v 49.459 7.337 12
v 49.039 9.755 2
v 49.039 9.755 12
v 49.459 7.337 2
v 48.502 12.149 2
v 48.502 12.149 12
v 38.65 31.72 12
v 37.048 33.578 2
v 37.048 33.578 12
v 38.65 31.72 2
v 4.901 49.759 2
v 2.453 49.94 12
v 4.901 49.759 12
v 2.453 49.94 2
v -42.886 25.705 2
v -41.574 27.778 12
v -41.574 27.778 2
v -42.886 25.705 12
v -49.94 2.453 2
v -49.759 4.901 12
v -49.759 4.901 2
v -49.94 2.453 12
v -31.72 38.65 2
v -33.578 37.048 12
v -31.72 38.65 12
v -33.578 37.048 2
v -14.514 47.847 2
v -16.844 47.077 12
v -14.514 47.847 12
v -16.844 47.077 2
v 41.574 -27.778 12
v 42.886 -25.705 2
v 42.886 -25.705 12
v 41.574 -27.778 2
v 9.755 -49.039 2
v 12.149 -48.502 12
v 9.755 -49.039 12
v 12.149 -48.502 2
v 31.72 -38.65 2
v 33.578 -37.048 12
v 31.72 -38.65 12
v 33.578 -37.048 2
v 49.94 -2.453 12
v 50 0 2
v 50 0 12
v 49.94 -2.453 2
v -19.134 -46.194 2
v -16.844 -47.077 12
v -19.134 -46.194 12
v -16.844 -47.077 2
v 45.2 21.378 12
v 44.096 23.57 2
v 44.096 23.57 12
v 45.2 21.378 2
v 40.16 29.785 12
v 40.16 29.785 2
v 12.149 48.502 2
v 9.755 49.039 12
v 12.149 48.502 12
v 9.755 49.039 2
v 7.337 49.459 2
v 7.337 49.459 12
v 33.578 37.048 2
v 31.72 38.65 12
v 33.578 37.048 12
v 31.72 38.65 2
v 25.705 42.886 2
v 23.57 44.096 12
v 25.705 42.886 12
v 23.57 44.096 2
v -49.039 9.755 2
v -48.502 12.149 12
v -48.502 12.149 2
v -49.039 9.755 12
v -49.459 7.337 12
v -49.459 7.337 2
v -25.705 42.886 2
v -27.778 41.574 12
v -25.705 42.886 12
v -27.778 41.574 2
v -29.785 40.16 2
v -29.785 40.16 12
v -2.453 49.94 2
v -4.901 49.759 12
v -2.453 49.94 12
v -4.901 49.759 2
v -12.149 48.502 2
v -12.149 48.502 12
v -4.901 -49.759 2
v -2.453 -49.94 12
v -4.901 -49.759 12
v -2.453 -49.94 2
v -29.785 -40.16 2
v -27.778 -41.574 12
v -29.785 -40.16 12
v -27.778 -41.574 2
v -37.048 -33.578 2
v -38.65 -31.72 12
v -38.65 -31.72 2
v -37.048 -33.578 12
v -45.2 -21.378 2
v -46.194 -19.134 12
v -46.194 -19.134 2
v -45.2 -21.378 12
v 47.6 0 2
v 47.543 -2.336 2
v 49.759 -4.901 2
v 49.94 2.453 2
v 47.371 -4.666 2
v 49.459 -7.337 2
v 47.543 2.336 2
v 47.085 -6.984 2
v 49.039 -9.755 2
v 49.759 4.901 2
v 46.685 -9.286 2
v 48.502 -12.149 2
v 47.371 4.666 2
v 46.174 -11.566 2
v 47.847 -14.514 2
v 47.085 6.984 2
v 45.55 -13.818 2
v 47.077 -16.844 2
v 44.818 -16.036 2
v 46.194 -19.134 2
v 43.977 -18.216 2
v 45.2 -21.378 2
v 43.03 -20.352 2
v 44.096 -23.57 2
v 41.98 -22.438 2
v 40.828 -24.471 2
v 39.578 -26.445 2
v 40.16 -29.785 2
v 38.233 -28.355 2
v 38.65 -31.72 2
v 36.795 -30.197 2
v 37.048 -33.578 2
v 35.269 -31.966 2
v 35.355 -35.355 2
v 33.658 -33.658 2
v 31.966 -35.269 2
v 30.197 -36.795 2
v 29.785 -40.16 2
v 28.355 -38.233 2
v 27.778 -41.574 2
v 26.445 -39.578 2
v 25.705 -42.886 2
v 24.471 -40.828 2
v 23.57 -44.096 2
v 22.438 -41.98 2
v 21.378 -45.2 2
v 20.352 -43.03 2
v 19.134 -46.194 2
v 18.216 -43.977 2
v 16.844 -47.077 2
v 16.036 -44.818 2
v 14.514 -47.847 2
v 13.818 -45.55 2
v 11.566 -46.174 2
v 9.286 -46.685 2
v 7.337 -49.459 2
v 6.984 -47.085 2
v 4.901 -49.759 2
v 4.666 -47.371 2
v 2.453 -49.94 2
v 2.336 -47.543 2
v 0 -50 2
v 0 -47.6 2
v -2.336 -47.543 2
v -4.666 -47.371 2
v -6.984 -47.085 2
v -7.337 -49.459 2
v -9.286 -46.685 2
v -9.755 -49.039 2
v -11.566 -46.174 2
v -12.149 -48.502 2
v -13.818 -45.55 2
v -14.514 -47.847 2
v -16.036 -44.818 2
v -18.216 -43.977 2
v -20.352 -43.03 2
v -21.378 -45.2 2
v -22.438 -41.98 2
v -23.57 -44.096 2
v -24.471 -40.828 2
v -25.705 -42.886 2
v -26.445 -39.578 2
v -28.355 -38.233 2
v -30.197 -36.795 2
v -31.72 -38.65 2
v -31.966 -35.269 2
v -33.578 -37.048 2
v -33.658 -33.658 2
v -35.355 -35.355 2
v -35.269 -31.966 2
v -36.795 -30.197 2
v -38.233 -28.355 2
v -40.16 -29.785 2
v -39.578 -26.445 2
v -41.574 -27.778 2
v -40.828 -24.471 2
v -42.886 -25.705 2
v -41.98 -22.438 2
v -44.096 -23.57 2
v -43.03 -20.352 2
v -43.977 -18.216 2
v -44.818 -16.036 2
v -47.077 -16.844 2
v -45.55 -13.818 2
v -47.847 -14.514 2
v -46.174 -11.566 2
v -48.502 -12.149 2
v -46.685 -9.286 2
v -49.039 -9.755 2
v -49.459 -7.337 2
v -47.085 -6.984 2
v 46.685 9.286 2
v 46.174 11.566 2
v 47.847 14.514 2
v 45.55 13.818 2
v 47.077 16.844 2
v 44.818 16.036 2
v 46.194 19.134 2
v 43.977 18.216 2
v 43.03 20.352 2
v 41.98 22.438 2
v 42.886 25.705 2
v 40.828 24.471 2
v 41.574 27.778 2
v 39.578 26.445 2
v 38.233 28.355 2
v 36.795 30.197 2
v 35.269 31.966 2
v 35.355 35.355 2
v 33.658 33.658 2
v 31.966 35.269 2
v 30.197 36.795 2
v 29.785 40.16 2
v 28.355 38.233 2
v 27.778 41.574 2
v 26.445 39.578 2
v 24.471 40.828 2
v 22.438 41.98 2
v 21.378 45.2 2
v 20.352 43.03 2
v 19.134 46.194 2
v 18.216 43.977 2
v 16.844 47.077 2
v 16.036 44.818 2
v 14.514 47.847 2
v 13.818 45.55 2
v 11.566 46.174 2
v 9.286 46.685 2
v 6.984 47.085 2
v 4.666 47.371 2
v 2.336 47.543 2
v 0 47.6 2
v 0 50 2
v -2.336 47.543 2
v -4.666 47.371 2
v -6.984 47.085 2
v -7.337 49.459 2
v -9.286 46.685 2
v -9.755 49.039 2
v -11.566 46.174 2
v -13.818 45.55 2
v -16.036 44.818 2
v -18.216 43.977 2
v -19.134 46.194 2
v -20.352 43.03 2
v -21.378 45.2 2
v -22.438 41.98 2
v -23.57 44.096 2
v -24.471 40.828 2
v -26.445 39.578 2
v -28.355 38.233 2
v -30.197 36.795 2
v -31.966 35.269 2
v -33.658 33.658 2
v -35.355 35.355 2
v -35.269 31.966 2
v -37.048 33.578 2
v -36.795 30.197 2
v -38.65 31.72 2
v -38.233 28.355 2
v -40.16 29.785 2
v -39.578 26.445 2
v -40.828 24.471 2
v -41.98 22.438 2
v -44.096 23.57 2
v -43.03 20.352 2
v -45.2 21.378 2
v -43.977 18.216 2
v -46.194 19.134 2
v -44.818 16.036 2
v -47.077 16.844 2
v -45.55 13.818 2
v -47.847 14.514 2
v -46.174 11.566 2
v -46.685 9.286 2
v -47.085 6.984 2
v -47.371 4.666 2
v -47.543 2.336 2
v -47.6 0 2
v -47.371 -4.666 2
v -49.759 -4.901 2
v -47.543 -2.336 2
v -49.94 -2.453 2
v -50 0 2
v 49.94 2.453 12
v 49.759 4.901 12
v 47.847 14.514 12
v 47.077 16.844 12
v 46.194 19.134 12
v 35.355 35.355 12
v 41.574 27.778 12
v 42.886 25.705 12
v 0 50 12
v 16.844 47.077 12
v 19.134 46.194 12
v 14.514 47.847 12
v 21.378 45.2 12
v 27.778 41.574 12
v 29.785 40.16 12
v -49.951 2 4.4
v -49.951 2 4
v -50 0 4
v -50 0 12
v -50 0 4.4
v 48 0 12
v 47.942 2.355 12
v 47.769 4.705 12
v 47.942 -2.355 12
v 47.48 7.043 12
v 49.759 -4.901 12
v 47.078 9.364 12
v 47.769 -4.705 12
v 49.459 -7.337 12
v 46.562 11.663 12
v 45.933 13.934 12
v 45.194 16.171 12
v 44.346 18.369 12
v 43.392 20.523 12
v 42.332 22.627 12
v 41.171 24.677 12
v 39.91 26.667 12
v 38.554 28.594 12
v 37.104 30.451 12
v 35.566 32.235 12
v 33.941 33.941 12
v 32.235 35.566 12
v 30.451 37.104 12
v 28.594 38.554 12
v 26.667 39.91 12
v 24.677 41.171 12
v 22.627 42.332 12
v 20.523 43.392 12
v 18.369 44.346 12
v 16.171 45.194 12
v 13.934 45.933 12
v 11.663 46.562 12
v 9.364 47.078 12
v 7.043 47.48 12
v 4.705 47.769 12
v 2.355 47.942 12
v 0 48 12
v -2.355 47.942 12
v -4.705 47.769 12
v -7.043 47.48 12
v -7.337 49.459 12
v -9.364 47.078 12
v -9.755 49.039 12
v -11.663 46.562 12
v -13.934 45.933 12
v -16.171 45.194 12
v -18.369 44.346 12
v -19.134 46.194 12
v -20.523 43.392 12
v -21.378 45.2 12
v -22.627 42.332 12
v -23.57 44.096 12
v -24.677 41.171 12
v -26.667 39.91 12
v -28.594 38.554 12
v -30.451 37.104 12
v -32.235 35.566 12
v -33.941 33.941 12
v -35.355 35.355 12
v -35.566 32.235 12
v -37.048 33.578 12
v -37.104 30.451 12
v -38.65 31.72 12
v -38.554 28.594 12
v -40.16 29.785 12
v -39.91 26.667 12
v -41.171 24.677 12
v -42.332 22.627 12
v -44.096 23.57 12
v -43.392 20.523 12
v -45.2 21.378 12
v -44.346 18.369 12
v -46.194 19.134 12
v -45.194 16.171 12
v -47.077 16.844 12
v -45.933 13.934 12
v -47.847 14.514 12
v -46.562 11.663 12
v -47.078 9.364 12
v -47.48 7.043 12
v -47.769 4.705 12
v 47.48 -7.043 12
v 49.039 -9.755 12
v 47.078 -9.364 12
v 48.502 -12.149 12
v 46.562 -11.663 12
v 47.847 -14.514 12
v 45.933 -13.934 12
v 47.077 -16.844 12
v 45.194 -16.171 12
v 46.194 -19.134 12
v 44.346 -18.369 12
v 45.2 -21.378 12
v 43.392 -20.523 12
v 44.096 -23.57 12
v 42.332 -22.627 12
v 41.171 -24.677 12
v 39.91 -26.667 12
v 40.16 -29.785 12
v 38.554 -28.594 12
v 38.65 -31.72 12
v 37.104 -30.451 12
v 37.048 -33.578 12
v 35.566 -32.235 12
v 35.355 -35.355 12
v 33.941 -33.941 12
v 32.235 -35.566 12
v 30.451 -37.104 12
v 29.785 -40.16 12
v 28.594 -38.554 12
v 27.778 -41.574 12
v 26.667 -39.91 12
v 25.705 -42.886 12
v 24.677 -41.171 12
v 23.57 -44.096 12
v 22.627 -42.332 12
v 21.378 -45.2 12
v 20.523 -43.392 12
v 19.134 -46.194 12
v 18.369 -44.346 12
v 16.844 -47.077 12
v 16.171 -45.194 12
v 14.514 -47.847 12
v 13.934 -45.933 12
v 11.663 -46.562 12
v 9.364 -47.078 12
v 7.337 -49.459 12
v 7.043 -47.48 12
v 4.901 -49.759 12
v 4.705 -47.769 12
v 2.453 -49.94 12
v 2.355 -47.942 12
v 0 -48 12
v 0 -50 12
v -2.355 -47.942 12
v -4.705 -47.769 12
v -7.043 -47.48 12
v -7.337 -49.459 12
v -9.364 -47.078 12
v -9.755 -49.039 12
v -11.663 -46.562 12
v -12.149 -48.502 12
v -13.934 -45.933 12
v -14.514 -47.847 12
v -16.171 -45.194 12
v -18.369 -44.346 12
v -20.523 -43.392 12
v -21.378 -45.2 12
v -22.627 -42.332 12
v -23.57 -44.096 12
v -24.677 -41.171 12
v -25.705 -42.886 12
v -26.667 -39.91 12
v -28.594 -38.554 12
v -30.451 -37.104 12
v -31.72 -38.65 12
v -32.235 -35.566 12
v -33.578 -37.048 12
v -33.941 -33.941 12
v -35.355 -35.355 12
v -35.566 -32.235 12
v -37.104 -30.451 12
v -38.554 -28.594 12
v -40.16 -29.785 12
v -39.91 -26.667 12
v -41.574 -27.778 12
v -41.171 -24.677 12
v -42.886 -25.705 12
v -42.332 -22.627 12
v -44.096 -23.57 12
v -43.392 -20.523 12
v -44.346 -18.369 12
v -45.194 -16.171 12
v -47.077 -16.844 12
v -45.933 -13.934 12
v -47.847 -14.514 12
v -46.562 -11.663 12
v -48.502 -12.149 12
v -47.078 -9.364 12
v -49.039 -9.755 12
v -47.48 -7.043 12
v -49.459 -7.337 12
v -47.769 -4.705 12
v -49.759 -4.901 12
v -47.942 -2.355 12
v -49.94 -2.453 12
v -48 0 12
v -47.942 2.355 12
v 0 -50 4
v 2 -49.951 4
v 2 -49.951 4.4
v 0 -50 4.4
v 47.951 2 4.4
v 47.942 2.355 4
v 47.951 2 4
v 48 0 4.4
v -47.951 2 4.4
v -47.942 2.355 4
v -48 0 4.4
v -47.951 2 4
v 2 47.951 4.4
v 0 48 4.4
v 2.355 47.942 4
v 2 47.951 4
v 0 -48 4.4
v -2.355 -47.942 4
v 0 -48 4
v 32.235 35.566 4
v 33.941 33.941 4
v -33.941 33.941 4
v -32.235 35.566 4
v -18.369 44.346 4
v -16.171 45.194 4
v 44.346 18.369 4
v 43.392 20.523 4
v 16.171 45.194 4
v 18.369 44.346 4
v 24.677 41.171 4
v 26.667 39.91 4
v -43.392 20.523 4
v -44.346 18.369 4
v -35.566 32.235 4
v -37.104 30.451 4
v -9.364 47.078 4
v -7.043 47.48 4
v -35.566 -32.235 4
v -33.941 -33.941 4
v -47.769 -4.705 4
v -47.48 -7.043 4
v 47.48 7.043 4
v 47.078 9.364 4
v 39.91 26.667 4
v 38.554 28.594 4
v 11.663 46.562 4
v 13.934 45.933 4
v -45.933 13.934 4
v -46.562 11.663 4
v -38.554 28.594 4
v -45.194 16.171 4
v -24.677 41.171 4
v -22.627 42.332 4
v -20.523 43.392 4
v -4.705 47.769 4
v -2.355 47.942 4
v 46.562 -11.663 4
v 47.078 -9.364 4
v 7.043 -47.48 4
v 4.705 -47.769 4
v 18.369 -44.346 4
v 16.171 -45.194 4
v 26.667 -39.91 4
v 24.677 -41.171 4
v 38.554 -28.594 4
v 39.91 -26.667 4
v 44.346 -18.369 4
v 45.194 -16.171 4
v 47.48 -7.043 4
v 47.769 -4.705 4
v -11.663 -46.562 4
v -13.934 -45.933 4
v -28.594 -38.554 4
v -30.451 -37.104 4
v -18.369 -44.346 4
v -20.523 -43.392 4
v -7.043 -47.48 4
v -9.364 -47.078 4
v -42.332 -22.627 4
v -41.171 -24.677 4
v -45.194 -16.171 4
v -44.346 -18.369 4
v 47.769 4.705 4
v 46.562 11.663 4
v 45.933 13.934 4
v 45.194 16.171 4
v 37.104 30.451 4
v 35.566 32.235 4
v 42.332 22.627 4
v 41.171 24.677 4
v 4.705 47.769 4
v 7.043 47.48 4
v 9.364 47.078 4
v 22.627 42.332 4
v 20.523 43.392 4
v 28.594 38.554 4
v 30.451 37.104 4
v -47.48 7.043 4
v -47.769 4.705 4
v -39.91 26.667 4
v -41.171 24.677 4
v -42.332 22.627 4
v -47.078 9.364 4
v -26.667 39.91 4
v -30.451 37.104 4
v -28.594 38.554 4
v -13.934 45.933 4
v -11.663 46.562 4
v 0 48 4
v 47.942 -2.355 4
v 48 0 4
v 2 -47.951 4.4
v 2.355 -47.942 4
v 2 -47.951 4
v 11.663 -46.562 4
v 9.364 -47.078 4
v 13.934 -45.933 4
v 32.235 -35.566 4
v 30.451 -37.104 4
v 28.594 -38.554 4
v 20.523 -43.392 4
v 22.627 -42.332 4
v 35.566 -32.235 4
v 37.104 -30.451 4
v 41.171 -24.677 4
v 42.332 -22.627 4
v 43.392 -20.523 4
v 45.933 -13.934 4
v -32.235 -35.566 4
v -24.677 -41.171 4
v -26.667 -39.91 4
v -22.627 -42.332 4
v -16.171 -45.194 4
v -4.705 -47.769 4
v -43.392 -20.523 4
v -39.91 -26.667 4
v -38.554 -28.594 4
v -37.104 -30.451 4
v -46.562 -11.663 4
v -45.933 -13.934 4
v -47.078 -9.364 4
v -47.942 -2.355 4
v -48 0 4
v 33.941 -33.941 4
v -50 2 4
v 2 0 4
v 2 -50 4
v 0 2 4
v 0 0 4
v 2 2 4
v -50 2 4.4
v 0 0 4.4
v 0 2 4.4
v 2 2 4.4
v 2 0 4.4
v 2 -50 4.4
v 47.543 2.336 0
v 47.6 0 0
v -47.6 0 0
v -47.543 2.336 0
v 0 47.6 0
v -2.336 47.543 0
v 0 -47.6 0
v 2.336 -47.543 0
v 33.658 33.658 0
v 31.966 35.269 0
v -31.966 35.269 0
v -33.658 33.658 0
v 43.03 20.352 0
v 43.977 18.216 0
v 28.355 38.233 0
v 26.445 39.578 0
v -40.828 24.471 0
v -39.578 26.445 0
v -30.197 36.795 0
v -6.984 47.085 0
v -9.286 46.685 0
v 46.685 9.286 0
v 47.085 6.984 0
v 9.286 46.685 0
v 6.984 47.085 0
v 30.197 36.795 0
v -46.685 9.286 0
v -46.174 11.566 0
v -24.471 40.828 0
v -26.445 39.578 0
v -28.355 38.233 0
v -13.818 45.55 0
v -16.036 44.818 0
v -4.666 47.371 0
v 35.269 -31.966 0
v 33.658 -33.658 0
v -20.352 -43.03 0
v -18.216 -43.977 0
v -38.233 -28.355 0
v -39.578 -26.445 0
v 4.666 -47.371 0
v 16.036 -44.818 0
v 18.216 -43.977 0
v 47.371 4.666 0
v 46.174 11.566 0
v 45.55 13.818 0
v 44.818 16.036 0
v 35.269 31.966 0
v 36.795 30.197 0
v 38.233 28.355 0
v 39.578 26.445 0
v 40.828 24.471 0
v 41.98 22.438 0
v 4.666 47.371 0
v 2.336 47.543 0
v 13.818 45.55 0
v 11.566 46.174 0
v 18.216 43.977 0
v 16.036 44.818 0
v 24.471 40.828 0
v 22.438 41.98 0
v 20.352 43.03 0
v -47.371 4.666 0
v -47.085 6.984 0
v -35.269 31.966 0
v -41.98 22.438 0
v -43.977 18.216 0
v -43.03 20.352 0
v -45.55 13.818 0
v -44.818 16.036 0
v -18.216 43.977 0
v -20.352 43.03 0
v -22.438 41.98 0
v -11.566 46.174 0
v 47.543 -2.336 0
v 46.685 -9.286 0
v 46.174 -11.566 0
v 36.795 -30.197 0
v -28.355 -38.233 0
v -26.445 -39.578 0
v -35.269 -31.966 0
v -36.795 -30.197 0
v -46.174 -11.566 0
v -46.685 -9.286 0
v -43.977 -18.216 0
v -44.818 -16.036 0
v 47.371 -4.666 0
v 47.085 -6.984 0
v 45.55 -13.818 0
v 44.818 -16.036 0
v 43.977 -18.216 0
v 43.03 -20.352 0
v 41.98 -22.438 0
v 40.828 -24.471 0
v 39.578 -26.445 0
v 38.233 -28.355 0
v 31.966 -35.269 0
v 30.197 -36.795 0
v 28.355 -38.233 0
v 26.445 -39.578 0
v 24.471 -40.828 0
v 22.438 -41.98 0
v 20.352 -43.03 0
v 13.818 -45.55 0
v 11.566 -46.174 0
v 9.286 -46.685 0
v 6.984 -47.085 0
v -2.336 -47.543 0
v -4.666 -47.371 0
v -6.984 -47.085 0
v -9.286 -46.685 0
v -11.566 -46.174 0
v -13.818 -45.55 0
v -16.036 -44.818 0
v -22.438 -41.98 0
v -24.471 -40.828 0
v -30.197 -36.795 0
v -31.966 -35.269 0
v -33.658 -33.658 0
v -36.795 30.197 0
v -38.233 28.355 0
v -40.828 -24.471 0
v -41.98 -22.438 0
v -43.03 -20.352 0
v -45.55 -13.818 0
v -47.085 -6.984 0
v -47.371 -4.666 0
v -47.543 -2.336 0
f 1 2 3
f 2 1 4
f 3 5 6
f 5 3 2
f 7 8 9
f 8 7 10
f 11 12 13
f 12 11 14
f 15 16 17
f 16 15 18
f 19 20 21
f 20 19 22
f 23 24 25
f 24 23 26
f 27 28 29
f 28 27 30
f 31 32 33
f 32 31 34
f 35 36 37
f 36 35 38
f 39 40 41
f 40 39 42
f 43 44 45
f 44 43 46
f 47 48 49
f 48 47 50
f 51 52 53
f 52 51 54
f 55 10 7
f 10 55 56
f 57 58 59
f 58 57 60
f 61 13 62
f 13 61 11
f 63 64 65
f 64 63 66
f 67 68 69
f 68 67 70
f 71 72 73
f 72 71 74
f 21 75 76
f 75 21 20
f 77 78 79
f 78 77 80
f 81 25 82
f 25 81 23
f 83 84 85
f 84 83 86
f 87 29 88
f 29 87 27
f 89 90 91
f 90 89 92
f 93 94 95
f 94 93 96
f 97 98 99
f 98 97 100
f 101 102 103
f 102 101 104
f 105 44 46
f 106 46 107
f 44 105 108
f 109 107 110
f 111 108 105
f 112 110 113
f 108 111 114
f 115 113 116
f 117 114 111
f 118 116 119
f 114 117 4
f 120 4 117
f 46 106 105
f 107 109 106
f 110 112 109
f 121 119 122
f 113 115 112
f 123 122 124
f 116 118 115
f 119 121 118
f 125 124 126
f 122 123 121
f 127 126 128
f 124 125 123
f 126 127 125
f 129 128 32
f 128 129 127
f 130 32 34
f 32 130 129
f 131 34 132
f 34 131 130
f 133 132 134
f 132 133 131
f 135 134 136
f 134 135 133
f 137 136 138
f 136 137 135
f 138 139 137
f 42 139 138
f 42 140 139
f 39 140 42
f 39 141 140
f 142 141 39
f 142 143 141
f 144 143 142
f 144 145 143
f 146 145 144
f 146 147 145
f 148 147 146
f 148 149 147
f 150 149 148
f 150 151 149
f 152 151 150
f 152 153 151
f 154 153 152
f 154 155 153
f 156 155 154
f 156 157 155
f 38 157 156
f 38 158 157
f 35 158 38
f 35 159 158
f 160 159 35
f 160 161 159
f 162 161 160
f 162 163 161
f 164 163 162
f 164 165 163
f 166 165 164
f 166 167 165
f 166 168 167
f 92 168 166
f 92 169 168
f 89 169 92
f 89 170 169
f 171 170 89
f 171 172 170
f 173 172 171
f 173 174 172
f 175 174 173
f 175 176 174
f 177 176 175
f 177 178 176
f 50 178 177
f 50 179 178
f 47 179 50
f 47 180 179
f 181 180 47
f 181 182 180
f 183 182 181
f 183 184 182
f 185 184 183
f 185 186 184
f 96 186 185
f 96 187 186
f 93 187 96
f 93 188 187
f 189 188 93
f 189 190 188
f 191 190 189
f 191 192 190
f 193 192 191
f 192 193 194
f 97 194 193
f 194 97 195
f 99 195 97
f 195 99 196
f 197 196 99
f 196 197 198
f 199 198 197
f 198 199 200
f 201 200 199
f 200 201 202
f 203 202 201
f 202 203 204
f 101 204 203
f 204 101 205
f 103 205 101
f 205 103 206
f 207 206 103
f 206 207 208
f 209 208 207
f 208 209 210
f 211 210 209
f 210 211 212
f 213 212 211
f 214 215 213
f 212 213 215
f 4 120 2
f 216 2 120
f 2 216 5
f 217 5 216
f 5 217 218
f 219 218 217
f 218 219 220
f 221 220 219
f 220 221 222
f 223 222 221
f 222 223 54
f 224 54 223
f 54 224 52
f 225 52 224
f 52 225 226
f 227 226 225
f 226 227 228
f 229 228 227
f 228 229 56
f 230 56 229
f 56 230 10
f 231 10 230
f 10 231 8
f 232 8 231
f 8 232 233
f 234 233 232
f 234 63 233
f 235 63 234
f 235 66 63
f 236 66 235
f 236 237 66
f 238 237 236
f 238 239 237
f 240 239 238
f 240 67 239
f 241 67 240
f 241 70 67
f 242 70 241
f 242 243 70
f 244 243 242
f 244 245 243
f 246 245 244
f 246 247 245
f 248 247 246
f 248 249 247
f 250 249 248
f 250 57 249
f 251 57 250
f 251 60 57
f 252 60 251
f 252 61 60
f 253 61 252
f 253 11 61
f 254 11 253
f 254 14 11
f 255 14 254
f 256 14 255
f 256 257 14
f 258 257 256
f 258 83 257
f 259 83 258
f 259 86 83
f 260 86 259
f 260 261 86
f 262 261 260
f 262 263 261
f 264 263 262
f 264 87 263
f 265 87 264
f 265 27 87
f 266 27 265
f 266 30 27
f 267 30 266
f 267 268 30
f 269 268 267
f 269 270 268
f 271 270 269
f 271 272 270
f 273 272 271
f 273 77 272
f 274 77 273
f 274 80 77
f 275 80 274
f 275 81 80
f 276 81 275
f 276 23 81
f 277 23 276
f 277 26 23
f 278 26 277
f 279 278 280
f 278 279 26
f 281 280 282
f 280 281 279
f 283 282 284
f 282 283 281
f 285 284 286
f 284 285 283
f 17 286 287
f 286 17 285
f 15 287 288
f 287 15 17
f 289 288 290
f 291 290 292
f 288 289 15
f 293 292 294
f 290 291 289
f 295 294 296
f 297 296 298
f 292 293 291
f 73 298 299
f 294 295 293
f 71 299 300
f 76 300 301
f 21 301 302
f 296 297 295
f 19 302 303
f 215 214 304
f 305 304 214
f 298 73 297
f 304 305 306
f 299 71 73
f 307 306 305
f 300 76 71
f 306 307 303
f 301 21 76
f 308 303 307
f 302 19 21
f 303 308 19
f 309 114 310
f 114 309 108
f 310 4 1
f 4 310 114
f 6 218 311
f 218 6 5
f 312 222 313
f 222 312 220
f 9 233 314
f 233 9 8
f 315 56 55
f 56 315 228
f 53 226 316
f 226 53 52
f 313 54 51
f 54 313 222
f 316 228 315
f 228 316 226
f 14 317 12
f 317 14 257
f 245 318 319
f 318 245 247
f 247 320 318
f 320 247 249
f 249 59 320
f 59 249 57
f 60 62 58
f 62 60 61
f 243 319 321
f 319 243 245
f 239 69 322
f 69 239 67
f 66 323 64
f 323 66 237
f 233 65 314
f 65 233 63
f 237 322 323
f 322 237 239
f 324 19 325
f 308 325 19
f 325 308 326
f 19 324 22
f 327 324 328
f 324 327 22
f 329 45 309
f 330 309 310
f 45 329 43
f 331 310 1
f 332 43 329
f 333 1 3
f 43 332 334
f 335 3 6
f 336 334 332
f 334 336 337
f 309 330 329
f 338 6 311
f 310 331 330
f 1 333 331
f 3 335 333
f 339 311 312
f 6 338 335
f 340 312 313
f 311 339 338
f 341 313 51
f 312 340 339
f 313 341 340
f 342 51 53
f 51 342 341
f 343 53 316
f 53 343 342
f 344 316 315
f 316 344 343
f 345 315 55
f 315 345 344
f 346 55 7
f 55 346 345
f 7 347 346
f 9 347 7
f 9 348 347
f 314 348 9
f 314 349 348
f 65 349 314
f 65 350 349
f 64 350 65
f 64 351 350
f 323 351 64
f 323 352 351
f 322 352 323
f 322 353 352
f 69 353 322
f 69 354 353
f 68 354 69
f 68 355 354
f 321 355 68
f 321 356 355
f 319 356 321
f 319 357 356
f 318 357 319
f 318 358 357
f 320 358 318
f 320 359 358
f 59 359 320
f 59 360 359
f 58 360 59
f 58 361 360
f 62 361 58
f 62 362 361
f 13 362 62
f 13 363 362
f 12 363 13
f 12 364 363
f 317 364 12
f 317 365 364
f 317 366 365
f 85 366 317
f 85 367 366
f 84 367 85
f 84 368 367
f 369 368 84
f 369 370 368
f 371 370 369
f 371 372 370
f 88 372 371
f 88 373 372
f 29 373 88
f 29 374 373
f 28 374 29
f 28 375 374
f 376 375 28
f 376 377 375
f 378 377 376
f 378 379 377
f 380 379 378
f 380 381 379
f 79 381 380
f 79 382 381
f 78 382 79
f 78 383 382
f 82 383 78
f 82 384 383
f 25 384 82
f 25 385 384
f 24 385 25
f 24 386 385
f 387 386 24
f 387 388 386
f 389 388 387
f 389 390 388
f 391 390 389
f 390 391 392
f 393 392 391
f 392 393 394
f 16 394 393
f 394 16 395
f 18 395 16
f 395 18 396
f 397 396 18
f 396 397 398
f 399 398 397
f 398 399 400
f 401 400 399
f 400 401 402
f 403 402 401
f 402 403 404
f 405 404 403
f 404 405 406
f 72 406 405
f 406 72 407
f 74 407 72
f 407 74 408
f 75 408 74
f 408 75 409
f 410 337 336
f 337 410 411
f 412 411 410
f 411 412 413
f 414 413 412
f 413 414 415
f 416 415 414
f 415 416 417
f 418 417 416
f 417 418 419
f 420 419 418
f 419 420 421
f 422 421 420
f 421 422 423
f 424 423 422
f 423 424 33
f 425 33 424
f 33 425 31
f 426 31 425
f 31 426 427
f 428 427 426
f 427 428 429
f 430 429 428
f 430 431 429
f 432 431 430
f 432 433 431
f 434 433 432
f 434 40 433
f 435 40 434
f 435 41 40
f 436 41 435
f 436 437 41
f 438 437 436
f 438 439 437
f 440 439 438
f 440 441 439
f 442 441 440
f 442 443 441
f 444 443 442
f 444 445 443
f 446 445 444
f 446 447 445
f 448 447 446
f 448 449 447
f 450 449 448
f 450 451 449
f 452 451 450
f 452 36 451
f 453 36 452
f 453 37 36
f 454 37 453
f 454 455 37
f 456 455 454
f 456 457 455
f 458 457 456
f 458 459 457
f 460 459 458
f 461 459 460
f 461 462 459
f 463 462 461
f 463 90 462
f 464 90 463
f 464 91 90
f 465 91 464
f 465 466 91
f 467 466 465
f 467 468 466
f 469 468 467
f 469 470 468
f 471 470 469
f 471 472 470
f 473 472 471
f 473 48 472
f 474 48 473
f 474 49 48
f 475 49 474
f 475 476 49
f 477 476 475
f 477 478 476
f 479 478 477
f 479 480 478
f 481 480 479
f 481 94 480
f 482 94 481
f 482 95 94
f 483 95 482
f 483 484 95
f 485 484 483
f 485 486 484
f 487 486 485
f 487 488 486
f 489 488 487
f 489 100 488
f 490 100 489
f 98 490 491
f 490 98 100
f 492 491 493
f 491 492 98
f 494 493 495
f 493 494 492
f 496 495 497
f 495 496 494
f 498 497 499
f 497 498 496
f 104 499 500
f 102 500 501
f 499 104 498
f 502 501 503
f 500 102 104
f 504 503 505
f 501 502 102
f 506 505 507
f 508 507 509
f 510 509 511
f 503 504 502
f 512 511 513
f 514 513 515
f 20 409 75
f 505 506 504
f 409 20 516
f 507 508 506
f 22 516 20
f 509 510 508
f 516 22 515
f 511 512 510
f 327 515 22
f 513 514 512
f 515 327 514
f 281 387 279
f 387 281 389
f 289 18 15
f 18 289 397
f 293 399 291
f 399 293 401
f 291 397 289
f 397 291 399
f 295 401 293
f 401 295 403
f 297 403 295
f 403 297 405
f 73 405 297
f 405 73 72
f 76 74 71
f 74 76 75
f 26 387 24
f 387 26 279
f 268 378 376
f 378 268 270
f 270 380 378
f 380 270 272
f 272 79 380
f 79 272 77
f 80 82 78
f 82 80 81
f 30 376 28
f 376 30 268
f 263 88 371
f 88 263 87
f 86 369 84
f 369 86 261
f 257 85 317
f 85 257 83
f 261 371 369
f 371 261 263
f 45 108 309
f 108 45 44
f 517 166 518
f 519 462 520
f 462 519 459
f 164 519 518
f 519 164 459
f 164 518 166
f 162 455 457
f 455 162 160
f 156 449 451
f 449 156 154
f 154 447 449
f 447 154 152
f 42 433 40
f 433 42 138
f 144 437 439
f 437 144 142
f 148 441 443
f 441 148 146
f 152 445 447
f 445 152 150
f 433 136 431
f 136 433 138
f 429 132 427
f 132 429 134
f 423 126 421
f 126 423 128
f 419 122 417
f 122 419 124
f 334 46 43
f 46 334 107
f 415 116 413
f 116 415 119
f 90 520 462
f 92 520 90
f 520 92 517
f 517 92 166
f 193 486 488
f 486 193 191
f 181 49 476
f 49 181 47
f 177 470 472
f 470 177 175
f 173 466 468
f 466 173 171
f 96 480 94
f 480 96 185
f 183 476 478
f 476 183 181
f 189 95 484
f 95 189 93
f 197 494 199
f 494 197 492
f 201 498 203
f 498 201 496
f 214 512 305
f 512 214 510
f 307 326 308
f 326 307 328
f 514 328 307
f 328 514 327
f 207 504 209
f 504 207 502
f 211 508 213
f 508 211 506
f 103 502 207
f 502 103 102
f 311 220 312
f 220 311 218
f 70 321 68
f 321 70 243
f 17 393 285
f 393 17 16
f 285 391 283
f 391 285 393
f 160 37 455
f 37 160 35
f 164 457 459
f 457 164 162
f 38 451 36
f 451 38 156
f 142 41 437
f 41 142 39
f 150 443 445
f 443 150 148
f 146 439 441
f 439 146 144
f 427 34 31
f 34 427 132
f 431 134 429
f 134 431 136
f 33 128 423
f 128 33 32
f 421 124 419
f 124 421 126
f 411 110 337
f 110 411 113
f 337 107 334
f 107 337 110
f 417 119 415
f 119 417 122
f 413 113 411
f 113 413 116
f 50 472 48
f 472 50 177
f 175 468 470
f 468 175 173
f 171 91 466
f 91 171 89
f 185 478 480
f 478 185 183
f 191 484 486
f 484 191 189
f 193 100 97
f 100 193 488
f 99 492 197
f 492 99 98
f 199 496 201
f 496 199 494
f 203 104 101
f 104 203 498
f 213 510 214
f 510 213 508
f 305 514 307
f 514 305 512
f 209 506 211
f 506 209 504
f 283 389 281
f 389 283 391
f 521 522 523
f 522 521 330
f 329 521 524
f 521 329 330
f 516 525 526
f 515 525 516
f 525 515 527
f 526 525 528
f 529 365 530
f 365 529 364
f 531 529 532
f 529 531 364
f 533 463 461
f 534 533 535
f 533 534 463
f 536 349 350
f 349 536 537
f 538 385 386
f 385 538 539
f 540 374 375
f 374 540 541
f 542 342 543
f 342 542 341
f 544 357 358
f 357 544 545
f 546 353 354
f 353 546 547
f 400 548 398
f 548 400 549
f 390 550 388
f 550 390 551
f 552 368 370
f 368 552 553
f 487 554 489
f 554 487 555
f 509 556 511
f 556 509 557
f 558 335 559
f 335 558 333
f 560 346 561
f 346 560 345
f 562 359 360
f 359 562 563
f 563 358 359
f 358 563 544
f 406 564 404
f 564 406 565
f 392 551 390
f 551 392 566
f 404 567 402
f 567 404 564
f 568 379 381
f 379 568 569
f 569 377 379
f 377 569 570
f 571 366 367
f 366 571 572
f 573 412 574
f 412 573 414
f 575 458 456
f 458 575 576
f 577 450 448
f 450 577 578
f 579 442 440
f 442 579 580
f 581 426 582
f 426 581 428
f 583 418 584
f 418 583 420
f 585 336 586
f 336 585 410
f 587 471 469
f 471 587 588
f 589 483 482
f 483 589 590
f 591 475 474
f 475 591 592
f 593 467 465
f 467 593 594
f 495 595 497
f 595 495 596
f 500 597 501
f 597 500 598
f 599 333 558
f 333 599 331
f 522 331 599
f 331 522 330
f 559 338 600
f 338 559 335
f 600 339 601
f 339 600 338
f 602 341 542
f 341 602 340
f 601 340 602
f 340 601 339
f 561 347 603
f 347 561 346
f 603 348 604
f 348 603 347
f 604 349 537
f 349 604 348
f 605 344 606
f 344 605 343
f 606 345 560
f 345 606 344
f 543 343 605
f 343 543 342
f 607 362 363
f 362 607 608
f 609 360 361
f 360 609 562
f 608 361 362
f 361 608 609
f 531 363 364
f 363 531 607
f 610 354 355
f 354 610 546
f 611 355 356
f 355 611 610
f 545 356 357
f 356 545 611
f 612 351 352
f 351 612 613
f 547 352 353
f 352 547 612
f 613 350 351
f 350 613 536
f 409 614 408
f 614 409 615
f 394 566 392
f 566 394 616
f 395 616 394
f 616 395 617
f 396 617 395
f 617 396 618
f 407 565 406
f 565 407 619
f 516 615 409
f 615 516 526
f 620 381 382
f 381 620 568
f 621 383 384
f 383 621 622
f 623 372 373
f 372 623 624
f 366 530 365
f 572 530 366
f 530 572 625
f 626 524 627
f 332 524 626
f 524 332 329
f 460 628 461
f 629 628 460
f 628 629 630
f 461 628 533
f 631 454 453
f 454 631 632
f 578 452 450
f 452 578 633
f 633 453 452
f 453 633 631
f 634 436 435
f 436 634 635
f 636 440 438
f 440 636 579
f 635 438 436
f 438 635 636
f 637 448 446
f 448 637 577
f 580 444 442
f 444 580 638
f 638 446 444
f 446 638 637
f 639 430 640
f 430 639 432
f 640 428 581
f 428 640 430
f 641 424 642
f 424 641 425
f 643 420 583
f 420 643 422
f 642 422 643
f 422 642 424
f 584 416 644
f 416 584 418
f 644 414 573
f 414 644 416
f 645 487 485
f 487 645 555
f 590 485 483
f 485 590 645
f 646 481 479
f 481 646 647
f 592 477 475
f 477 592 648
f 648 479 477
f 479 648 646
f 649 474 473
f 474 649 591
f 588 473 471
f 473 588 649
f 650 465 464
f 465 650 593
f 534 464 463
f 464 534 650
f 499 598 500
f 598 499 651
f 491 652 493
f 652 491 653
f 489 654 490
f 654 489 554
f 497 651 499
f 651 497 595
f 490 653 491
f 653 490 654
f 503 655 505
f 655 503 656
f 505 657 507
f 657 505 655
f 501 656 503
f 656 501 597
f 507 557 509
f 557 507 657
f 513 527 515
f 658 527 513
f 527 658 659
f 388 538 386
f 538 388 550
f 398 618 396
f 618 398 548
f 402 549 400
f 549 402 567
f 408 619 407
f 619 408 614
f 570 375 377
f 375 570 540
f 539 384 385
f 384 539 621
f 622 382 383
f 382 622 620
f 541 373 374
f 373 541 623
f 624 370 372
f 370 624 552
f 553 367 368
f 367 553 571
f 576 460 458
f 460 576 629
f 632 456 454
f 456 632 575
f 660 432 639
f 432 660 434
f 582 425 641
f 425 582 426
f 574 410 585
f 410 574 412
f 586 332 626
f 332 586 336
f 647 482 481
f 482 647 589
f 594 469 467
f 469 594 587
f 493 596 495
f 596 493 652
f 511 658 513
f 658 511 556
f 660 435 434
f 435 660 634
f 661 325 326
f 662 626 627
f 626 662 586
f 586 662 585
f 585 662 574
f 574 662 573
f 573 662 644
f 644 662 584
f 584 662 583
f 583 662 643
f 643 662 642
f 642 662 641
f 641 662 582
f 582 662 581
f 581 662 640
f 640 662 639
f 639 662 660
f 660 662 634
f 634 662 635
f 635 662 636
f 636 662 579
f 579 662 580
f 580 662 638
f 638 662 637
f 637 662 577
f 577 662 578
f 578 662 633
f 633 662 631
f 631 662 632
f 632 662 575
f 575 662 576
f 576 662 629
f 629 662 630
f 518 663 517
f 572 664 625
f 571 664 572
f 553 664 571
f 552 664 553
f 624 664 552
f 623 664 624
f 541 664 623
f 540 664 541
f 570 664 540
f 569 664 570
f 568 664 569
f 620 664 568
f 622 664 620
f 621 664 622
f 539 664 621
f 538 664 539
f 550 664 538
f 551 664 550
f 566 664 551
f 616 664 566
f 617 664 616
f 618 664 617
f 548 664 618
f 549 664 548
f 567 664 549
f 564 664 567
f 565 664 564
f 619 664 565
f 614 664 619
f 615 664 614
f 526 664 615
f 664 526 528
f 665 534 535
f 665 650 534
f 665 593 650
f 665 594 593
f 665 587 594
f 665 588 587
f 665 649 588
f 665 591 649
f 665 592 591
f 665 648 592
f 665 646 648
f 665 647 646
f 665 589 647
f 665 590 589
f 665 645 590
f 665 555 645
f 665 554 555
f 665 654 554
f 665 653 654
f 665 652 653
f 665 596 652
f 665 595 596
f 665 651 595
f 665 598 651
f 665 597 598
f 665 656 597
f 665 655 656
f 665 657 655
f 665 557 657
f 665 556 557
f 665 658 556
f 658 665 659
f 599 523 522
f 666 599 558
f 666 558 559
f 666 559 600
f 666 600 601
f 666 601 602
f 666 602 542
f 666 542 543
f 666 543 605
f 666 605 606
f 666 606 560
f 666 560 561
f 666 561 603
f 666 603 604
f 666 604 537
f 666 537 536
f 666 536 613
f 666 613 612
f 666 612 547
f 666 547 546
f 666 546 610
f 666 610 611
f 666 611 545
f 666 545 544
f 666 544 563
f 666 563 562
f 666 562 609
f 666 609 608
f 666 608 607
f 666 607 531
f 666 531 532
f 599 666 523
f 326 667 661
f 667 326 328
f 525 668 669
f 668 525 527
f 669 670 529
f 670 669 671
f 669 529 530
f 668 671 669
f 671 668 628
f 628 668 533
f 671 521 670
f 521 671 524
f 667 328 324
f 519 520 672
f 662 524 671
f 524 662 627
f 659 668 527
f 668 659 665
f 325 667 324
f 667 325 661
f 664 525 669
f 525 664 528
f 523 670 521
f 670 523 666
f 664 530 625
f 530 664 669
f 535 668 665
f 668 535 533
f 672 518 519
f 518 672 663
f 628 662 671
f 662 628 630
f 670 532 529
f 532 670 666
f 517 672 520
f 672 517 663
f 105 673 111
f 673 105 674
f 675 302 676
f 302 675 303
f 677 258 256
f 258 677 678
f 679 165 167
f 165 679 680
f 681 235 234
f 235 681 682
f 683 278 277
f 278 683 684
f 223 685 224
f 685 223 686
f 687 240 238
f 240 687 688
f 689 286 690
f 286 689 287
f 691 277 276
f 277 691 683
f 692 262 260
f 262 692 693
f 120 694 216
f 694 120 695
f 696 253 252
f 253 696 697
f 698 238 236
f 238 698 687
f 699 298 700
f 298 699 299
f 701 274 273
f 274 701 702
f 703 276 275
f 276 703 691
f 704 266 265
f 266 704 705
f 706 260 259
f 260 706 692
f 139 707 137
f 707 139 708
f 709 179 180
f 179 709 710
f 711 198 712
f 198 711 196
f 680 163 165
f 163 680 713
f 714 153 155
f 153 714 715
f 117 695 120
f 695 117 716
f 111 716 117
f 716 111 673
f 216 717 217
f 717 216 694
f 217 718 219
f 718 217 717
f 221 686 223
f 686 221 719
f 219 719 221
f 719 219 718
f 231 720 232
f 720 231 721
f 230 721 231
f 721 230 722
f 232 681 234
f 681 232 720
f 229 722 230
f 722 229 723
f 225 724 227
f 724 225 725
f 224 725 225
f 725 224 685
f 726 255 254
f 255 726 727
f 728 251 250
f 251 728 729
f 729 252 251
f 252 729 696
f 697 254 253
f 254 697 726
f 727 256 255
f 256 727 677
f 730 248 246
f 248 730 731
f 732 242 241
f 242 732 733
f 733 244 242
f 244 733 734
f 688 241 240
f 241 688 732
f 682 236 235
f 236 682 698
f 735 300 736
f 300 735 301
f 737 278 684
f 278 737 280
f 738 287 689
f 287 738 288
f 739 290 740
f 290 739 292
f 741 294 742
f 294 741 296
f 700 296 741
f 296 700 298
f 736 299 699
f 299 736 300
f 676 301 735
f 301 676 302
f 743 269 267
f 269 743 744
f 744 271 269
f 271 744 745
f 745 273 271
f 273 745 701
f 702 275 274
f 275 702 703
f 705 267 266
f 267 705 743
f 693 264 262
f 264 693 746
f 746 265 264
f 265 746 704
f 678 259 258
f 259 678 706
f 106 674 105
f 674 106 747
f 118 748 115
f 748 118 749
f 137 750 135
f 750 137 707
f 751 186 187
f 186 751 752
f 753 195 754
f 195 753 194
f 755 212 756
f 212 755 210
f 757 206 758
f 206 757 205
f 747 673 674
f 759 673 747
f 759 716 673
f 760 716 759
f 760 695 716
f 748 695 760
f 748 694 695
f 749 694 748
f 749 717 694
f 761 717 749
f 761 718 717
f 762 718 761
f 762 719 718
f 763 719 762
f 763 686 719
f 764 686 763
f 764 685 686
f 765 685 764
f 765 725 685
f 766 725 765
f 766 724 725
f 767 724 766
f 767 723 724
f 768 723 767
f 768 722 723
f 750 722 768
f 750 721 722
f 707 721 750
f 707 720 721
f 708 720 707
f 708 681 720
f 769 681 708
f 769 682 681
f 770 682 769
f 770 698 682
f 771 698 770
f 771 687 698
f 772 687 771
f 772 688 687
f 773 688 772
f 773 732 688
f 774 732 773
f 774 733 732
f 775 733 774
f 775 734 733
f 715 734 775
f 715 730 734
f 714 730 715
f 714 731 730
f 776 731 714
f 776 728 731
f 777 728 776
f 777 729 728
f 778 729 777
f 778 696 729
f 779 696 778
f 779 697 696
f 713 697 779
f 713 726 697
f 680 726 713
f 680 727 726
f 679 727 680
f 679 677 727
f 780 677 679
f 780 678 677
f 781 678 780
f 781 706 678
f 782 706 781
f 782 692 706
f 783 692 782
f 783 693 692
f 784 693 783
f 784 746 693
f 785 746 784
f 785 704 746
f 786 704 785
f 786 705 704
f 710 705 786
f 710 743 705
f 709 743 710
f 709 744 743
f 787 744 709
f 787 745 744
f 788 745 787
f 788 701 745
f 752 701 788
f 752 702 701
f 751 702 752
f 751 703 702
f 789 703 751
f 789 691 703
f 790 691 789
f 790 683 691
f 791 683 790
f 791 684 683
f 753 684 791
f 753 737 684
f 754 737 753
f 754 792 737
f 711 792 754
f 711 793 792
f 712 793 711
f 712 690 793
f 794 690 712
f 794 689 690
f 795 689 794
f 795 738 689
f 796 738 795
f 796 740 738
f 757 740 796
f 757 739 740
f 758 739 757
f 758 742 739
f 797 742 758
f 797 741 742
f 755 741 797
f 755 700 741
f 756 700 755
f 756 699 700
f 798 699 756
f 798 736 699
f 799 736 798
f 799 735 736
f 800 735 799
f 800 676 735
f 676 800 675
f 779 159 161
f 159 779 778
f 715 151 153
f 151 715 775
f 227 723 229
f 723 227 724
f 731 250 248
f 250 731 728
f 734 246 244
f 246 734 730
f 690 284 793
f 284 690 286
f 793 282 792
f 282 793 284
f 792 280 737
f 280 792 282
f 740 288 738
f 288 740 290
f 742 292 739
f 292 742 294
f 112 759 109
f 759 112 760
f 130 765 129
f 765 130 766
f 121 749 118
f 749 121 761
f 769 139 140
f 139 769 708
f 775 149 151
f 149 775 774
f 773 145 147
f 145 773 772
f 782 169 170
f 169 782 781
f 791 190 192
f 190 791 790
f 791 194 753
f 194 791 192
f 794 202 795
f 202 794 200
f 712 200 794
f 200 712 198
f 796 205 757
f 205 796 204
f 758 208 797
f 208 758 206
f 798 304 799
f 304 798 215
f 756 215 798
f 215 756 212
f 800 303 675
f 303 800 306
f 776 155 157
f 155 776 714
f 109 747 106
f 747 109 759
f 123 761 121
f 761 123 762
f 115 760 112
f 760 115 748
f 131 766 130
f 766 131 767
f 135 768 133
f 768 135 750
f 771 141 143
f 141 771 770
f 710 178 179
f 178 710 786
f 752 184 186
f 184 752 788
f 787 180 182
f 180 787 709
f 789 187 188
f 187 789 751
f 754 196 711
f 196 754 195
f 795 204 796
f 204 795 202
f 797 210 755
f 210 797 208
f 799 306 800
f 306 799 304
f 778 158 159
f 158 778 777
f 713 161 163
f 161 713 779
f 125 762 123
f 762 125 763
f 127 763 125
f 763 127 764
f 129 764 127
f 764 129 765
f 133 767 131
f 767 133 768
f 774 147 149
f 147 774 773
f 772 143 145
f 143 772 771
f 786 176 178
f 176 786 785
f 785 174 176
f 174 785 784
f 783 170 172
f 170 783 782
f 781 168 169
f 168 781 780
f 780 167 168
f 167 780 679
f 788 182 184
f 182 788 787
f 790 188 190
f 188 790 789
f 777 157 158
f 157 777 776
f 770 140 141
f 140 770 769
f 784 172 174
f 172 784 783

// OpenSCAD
$fn = 128;

nozzleDiameter = 0.4;

outerHeight = nozzleDiameter * 25;
innerHeight = nozzleDiameter * 5;
border = nozzleDiameter * 5;
radius = nozzleDiameter * 125;
raisedHeight = nozzleDiameter;
tolerance = nozzleDiameter;

cylinder(h = border, r = radius - border - tolerance);
translate([0, 0, border]) {
    difference() {
        cylinder(h = outerHeight, r = radius);
        cylinder(h = outerHeight, r = radius - border);
    };

    cylinder(h = innerHeight, r = radius - border);

    translate([-radius, 0, border]) {
        cube([(radius * 2) - border, border, raisedHeight]);
    };

    translate([0, -radius, border]) {
        cube([border, (radius * 2) - border, raisedHeight]);
    };
}
